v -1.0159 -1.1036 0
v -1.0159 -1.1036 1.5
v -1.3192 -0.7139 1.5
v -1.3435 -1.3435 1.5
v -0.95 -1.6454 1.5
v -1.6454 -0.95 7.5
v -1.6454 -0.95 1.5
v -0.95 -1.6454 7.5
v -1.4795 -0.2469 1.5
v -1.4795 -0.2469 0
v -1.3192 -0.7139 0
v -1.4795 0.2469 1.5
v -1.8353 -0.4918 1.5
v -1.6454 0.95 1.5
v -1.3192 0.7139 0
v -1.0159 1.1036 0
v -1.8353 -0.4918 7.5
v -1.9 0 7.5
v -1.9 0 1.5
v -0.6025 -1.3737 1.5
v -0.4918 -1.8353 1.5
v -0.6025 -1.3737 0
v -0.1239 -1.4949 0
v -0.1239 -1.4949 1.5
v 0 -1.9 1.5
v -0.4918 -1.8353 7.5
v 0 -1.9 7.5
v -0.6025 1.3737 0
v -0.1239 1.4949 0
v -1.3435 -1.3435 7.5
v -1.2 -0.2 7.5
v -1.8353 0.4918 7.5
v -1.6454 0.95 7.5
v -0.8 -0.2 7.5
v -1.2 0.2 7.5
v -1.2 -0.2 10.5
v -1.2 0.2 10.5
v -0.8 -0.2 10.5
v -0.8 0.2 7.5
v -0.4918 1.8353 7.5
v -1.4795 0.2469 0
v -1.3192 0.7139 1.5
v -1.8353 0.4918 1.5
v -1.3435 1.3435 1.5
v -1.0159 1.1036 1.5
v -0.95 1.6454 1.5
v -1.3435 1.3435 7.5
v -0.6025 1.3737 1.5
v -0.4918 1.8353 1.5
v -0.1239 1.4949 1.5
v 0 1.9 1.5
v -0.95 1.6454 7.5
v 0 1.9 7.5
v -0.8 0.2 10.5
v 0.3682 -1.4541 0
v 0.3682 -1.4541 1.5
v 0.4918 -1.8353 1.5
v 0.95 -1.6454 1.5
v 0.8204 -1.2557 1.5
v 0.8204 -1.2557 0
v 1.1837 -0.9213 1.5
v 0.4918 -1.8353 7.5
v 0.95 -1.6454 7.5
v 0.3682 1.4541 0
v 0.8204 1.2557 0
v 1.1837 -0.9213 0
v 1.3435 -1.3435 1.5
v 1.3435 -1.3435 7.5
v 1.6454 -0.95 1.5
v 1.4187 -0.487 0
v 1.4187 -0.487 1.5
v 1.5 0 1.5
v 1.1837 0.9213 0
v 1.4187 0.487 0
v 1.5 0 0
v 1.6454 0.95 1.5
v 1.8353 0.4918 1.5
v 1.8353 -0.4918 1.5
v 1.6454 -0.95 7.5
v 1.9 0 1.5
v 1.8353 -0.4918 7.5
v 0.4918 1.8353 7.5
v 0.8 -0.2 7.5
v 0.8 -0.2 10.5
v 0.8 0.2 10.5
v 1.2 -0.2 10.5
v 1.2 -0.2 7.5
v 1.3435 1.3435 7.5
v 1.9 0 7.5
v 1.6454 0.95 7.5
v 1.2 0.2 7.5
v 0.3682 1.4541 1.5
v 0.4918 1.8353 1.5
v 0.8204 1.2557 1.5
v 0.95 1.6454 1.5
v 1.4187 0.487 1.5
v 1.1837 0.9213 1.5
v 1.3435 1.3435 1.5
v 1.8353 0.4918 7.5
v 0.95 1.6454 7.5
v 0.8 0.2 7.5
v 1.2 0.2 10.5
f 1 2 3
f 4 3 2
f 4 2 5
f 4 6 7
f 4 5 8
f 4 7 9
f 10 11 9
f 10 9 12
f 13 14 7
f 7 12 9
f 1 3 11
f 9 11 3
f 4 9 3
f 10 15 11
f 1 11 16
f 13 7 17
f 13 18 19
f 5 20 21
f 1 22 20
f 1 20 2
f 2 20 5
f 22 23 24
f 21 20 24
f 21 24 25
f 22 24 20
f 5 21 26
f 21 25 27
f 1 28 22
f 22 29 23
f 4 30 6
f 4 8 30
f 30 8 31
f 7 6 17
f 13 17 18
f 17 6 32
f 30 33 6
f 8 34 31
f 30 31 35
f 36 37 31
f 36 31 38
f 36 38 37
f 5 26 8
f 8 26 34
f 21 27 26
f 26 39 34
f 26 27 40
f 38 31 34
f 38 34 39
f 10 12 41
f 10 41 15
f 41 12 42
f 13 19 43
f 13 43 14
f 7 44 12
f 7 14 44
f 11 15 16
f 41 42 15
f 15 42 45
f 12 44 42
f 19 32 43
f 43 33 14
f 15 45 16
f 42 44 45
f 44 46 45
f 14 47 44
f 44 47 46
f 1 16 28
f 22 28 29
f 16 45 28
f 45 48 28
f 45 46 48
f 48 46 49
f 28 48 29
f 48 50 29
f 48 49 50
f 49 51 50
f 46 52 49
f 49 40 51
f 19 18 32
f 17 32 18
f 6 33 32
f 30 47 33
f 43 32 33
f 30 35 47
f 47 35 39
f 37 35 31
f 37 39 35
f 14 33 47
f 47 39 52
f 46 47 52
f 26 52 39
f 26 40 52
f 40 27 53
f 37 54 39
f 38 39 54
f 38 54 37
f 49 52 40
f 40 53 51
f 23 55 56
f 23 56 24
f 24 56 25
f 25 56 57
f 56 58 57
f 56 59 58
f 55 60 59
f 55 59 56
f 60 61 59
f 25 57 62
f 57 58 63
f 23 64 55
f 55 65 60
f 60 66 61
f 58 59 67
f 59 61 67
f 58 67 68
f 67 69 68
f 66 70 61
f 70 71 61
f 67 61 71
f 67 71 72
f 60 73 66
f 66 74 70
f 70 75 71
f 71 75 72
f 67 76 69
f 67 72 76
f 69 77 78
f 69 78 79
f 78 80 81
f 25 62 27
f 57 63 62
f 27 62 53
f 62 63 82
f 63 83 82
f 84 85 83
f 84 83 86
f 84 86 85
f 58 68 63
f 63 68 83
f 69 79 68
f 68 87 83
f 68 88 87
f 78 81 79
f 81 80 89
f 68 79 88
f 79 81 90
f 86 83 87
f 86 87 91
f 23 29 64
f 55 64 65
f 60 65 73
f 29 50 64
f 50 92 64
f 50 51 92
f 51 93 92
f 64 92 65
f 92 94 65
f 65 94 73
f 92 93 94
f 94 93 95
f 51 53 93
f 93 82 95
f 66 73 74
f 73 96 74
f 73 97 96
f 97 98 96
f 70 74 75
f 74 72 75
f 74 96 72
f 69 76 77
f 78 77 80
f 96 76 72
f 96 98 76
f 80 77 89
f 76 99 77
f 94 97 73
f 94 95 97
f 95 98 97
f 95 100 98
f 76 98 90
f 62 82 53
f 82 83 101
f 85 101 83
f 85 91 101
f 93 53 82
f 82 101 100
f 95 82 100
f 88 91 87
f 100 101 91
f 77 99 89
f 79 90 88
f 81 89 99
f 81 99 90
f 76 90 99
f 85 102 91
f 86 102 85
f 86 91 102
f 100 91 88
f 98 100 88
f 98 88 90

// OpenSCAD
// file: ../lib/lib.scad
// Shared helpers. Include AFTER params.scad (needs TOL, M3_* etc.).
$fa = 4; $fs = 0.5;

module rrect(size, r) {            // 2D rounded rectangle, centred
    r2 = min(r, min(size[0], size[1]) / 2 - 0.001);
    offset(r = r2) square([size[0] - 2 * r2, size[1] - 2 * r2], center = true);
}
module rbox(size, r, center_xy = true) {   // box with rounded vertical edges
    translate(center_xy ? [0, 0, 0] : [size[0] / 2, size[1] / 2, 0])
        linear_extrude(size[2]) rrect([size[0], size[1]], r);
}
module rbox_at(x0, x1, y0, y1, z0, z1, r = 0.01) {
    translate([(x0 + x1) / 2, (y0 + y1) / 2, z0]) rbox([x1 - x0, y1 - y0, z1 - z0], r);
}
module box_at(x0, x1, y0, y1, z0, z1) { translate([x0, y0, z0]) cube([x1 - x0, y1 - y0, z1 - z0]); }

module ring(ro, ri, h) { difference() { cylinder(r = ro, h = h); translate([0, 0, -1]) cylinder(r = ri, h = h + 2); } }
module ring_sector(ro, ri, h, a0, a1) {
    intersection() {
        ring(ro, ri, h);
        linear_extrude(h) polygon(concat([[0, 0]], [for (a = [a0 : (a1 - a0) / 24 : a1]) 2 * ro * [cos(a), sin(a)]]));
    }
}
// teardrop hole along an axis lying horizontal (axis = Y after rotation), printable w/o support
module teardrop2d(d) { union() { circle(d = d); rotate(45) square(d / 2); } }
// vertical heat-set insert hole, opening at z=0 going +z (depth l)
module insert_hole(l = M3_INSERT_L) { translate([0, 0, -EPS]) cylinder(d = M3_INSERT_D, h = l + EPS); }
module m3_clear(l) { translate([0, 0, -EPS]) cylinder(d = M3_CLEAR, h = l + 2 * EPS); }
module m3_csk(l) {  // countersunk clearance from z=0 upward, head at z=0 side
    translate([0, 0, -EPS]) { cylinder(d = M3_CLEAR, h = l + 2 * EPS); cylinder(d1 = 6.4, d2 = M3_CLEAR, h = 1.7); }
}
module card2d() { rrect([CARD_L, CARD_W], CARD_R); }
module card_at(cy, z) { translate([0, cy, z]) linear_extrude(CARD_T) card2d(); }

// ---- gears ----
function _inv(a) = tan(a) - a * PI_ / 180;           // involute function, a in deg
function _invpt(rb, r, ang0, s) = let(al = acos(rb / r), th = ang0 - s * (_inv(al) * 180 / PI_)) [r * cos(th), r * sin(th)];
module involute_gear2d(m, z, pa = 20, clearance = 0.05) {
    rp = m * z / 2; rb = rp * cos(pa); ra = rp + m - clearance; rf = rp - 1.25 * m;
    half = 90 / z + _inv(pa) * 180 / PI_;            // tooth half-angle at base (deg)
    n = 8;
    rs = [for (i = [0 : n]) max(rb, rf) + (ra - max(rb, rf)) * i / n];
    union() {
        circle(r = rf, $fn = z * 4);
        for (k = [0 : z - 1]) rotate(k * 360 / z) polygon(concat(
            [[rf * cos(-half), rf * sin(-half)]],
            [for (r = rs) let(p = _invpt(rb, r, half, 1)) [p[0], -p[1]]],
            [for (i = [n : -1 : 0]) _invpt(rb, rs[i], half, 1)],
            [[rf * cos(half), rf * sin(half)]]));
    }
}
// straight gear rack (2D in XY: teeth along +x, pointing -y, pitch line at y=0)
module gear_rack2d(m, len, back = 3) {
    p = PI_ * m; ad = m; de = 1.25 * m; t = tan(20);
    n = ceil(len / p) + 1;
    intersection() {
        union() {
            translate([0, de]) square([len, back]);
            for (i = [0 : n]) translate([i * p - p / 4, 0]) polygon([
                [-(p / 4 + de * t), de + 0.01], [p / 4 + de * t + 0.01, de + 0.01],
                [p / 4 - ad * t, -ad], [-(p / 4 - ad * t), -ad] ]);
        }
        translate([0, -ad - 1]) square([len, ad + de + back + 2]);
    }
}
// GT2 belt-tooth profile ring (teeth outward), 2D
module gt2_ring2d(n, r_land, ri) {
    union() {
        difference() { circle(r = r_land + 0.01, $fn = n * 2); circle(r = ri, $fn = n * 2); }
        for (k = [0 : n - 1]) rotate(k * 360 / n)
            translate([r_land, 0]) hull() { translate([-0.2, 0]) square([0.2, 1.0], center = true); translate([0.25, 0]) circle(r = 0.5, $fn = 12); }
    }
}
// main file
// Vendor model: 3 mm IR break-beam sensor half (emitter or receiver), aims along -Z from z=0. Local: lens face z=0, body toward +Z.
include <../params.scad>
include <../lib/lib.scad>
module vendor_ir_beam(rx = false) {
    color(rx ? [0.1,0.1,0.1] : [0.2,0.2,0.5]) { cylinder(d = 3, h = 1.5); translate([0, 0, 1.5]) cylinder(d = 3.8, h = 6); }
    color([0.8,0.8,0.8]) for (x = [-1, 1]) translate([x - 0.2, -0.2, 7.5]) cube([0.4, 0.4, 3]);
}

vendor_ir_beam();
